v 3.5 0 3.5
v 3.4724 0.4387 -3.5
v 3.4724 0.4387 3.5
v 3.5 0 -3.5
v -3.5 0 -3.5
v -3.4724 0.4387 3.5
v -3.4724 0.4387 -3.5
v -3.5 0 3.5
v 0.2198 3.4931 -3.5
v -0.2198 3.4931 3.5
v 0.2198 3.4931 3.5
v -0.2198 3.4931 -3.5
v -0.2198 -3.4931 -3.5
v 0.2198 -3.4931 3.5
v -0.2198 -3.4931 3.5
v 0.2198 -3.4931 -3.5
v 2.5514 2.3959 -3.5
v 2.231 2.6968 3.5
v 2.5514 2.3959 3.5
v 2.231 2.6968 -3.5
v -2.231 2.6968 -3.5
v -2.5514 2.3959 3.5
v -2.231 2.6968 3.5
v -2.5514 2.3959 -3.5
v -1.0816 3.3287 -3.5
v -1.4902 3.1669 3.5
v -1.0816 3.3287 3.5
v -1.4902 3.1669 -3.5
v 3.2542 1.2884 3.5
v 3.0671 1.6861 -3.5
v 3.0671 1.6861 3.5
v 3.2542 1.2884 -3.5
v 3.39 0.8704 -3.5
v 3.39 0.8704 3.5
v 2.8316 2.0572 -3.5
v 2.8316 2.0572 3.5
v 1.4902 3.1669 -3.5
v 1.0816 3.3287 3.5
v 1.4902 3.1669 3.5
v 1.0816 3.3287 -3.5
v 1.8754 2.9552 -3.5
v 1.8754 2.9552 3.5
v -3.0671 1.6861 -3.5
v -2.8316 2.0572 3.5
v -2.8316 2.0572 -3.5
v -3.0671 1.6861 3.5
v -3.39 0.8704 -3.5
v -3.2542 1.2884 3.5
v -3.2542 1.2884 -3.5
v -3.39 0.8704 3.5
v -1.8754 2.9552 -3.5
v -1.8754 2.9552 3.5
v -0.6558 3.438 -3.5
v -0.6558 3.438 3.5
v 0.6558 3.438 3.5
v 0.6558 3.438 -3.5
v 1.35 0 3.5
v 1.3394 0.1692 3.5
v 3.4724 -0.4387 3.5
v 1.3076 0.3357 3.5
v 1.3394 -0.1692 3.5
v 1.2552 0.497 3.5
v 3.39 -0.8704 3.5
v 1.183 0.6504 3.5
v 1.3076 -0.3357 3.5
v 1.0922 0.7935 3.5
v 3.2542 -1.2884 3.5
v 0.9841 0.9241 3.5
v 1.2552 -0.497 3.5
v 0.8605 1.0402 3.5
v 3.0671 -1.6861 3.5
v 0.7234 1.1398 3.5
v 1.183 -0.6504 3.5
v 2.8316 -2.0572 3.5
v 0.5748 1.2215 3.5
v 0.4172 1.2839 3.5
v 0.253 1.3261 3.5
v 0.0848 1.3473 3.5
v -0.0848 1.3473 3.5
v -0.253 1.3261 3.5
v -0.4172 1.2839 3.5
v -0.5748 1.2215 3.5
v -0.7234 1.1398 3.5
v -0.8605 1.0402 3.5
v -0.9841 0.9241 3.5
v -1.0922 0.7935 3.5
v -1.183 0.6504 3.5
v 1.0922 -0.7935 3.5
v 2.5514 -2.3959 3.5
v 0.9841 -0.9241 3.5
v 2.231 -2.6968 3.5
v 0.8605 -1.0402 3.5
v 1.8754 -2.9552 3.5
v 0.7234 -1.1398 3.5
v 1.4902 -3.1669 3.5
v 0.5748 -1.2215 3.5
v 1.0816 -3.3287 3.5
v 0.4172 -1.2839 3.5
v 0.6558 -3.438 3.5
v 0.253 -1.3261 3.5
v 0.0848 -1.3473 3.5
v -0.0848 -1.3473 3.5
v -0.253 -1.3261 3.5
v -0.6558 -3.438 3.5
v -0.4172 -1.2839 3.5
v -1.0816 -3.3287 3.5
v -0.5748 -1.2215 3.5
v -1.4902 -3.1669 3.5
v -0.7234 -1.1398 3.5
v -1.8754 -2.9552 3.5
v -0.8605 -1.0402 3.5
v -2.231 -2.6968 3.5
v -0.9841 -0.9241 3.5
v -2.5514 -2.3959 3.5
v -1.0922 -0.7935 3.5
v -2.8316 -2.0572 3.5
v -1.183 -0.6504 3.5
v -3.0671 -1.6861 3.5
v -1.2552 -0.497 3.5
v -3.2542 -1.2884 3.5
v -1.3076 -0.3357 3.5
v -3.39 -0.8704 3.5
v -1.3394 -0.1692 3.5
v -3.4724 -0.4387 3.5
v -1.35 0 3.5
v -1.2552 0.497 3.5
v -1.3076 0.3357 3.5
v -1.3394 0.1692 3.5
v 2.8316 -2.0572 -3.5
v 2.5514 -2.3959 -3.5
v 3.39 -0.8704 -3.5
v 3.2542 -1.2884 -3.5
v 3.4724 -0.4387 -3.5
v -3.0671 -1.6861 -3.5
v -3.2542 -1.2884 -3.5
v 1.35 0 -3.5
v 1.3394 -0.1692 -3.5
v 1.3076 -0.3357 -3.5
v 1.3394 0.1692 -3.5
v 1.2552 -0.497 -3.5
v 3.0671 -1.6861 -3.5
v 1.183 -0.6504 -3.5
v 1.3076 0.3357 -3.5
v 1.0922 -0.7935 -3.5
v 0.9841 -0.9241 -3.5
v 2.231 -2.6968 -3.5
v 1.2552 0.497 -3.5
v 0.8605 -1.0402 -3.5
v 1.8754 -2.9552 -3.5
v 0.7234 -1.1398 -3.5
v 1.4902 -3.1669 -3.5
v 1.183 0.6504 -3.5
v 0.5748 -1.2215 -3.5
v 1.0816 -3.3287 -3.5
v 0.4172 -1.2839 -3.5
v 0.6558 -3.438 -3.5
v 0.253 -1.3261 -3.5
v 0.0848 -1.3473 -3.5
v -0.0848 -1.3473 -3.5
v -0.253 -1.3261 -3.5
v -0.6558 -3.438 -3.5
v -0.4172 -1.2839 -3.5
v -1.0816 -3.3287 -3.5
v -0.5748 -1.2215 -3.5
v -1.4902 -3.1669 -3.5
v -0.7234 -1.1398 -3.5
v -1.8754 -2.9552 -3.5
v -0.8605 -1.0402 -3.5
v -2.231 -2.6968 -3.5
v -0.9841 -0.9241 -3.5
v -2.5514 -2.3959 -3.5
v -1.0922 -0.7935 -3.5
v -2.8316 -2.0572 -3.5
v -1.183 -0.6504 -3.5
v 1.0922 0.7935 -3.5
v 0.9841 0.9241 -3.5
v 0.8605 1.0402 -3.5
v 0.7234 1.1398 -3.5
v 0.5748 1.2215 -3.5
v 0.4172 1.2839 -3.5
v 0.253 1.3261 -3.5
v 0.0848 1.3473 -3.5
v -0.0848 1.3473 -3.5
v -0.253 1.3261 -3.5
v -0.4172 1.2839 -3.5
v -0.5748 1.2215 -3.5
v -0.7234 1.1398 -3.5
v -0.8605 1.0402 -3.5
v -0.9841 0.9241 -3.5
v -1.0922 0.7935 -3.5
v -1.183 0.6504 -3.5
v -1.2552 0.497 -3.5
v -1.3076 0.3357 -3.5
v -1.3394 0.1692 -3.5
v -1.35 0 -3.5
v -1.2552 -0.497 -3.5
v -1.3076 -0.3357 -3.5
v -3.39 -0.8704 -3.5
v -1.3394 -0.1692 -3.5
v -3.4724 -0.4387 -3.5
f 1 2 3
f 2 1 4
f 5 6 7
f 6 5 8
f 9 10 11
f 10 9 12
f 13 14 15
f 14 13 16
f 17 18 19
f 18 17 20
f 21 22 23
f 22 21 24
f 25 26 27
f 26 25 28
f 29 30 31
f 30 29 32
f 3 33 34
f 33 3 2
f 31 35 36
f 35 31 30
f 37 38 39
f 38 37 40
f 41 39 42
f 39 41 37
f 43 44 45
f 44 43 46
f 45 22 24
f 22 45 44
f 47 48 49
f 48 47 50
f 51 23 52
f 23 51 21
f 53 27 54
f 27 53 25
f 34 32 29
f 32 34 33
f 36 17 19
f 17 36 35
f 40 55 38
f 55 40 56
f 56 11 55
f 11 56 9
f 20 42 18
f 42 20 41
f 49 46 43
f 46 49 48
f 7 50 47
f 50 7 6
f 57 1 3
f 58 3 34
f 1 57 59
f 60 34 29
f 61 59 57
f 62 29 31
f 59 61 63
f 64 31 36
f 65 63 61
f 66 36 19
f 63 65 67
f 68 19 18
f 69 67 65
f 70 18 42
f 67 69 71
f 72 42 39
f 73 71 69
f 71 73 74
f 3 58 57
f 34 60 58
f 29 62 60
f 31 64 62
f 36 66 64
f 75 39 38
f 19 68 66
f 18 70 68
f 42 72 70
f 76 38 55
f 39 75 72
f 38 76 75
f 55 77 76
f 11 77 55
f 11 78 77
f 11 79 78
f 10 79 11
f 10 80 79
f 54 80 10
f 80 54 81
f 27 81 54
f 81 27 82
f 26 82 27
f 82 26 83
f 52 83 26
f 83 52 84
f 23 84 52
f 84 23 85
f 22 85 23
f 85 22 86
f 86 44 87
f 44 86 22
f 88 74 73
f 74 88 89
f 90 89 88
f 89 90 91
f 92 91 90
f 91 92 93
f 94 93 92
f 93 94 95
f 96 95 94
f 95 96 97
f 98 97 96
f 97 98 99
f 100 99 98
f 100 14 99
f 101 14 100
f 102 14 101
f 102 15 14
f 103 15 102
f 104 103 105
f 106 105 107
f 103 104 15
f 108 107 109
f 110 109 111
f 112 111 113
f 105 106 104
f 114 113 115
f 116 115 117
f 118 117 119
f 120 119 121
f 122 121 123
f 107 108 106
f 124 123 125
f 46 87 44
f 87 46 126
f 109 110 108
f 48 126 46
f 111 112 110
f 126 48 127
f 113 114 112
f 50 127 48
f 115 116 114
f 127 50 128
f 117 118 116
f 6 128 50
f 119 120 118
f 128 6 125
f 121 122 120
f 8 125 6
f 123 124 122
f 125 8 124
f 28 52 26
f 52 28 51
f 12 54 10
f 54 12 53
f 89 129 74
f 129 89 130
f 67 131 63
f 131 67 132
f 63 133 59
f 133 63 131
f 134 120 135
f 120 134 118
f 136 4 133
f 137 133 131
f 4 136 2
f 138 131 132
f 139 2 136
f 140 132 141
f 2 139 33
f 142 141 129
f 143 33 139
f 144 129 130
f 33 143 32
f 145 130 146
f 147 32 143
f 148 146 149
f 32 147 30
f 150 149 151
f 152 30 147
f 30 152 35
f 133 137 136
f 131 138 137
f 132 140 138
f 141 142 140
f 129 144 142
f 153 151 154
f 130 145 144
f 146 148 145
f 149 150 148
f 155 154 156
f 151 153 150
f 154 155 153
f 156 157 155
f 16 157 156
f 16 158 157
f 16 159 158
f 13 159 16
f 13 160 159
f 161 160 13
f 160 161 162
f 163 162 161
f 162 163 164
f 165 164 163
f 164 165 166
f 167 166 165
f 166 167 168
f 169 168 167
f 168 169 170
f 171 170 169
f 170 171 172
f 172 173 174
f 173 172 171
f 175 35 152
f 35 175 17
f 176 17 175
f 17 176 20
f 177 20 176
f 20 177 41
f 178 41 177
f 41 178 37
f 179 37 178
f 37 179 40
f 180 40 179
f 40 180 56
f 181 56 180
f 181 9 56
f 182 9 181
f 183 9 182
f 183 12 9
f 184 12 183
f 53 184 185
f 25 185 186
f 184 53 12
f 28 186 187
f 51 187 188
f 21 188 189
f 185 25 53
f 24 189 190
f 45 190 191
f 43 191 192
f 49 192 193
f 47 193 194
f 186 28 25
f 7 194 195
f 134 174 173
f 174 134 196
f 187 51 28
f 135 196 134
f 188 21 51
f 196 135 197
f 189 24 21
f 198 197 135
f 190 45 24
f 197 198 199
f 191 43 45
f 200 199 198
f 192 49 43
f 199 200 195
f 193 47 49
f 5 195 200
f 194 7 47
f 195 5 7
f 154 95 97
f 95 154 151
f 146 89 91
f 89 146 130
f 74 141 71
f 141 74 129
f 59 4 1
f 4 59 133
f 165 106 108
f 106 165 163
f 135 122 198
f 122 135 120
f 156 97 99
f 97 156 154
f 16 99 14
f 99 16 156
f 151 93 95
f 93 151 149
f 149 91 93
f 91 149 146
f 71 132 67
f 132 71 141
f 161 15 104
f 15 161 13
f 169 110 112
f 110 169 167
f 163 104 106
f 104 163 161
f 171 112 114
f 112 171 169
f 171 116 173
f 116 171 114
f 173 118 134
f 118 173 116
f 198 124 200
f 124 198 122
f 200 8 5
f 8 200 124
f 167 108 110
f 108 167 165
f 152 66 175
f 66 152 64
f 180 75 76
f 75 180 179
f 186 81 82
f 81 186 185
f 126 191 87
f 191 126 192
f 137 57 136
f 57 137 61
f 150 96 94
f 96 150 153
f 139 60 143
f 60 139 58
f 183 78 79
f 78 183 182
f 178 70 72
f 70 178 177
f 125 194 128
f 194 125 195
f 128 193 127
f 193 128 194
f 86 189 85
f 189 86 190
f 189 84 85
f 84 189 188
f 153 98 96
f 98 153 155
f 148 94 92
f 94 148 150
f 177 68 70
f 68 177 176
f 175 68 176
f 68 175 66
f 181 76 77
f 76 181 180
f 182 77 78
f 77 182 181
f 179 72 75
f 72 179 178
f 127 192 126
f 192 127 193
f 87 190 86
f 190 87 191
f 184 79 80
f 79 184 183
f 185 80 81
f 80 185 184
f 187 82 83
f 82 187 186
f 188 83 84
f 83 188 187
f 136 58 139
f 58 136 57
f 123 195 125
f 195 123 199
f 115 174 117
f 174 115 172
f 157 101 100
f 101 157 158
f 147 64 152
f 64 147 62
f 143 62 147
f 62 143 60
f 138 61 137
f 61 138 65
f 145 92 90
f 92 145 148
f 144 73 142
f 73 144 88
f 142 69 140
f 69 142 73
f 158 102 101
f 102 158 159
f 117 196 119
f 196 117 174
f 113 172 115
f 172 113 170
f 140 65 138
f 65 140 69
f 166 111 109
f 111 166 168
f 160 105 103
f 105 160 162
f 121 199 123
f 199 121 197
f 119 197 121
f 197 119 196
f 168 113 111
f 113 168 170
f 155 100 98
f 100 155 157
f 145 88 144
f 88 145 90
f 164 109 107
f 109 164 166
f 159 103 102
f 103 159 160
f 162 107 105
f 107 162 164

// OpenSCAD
$fn = 50;


difference() {
	union() {
		translate(v = [0, 0, -3.5000000000]) {
			cylinder(h = 7, r = 3.5000000000);
		}
	}
	union() {
		translate(v = [0, 0, -100.0000000000]) {
			cylinder(h = 200, r = 1.3500000000);
		}
	}
}
